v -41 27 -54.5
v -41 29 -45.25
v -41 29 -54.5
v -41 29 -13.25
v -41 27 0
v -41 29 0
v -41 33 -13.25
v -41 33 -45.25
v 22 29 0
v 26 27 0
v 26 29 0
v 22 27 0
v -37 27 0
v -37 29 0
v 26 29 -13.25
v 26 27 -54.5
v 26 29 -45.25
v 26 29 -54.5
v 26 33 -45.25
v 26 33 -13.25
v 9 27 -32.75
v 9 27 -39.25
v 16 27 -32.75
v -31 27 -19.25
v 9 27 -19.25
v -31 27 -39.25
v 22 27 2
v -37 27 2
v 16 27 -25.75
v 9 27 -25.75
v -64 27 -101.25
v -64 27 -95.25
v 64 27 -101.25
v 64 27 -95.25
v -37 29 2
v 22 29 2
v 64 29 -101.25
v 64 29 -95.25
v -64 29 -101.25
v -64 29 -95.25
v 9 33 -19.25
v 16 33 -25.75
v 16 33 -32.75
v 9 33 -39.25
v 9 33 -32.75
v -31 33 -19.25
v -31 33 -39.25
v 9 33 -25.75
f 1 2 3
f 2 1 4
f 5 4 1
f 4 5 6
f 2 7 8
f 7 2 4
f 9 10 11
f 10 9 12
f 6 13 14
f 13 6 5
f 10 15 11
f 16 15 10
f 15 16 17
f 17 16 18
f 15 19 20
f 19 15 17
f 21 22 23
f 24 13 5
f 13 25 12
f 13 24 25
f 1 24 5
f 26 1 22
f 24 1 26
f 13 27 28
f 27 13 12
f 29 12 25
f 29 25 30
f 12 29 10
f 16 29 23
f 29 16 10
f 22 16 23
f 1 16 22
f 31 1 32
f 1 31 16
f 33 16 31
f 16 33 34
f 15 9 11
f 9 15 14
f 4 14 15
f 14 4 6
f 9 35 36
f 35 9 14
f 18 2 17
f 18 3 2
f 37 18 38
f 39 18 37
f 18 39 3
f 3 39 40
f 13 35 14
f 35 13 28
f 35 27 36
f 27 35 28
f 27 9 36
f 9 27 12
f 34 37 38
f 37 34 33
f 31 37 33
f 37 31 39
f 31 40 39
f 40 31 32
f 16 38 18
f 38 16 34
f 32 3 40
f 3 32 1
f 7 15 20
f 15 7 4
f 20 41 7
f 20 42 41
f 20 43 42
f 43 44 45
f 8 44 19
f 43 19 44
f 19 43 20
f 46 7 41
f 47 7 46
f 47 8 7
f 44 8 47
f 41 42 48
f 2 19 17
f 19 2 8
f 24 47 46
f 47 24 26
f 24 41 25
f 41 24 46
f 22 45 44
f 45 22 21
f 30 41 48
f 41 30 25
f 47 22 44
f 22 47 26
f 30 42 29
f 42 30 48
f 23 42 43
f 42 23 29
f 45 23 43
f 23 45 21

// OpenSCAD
/*
  Seed imaging system case with experimental collector

  Starting point:
    A simple rectangular base plate for the vacuum/rocking seed imaging system.
*/

$fn = 48;

// Choose what OpenSCAD shows/exports.
part_to_show = "back"; // "assembly", "plate", "front", "back", "left_side", "right_side", "sides", "collector", "lower_frame", "bottom"

// Base plate dimensions.
plate_w = 210;      // mm
plate_h = 180;      // mm
plate_thick = 2;    // mm
corner_r = 2;       // mm, just enough to remove sharp corners
wall_slot_clearance = 0.3; // mm extra slot size for sliding wall parts into plate

// Cutout matching the outer tray footprint of the moving funnel adapter.
funnel_cutout_w = 124;       // mm, long side plus clearance for rotation
funnel_cutout_h = 87;        // mm, short side plus clearance for rotation
funnel_front_gap = 20;       // mm from front long edge of plate to cutout
funnel_cutout_r = 2;         // mm, slight radius to avoid sharp internal corners
funnel_cutout_y = -plate_h/2 + funnel_front_gap + funnel_cutout_h/2;

// Front wall for the vacuum adapter interface, hanging down from the top plate.
front_wall_offset_from_cutout = 12; // mm from front edge of cutout toward plate front
front_wall_extra_w = 10;            // mm extension beyond each cutout side
front_wall_w = funnel_cutout_w + 2 * front_wall_extra_w;
front_wall_h = 101.25;              // mm, bottom is 72 mm below front circle center
front_wall_thick = 2;               // mm
front_wall_y = funnel_cutout_y - funnel_cutout_h/2 - front_wall_offset_from_cutout - front_wall_thick;
back_wall_offset_from_cutout = 10;  // mm from back edge of cutout toward plate back
back_wall_y = funnel_cutout_y + funnel_cutout_h/2 + back_wall_offset_from_cutout;
side_wall_thick = front_wall_thick;
side_wall_y = front_wall_y;
side_wall_depth = back_wall_y + front_wall_thick - front_wall_y;

// Circular opening in the front wall for the static funnel-system spout.
static_spout_outer_d = 31.5;       // mm, current static male spout OD
front_wall_spout_clearance = 1;    // mm extra diameter clearance
front_wall_spout_cutout_d = static_spout_outer_d + front_wall_spout_clearance;
front_wall_spout_top_drop = 15;    // mm below top surface of plate
front_wall_spout_center_z = plate_thick - front_wall_spout_top_drop - front_wall_spout_cutout_d/2;
front_wall_tab_margin = 10;      // mm material around circular spout tab
front_wall_tab_x = -front_wall_spout_cutout_d/2 - front_wall_tab_margin;
front_wall_tab_w = front_wall_spout_cutout_d + 2 * front_wall_tab_margin;
front_back_wall_bottom_clearance = 10; // mm below circular cutout bottom
front_back_wall_bottom_z = front_wall_spout_center_z - front_wall_spout_cutout_d/2 - front_back_wall_bottom_clearance;
front_back_wall_h = -front_back_wall_bottom_z;

// Rectangular opening in the back wall, aligned with the spout opening height.
back_wall_rect_cutout_w = 40;   // mm, long horizontal edge
back_wall_rect_cutout_h = 20;   // mm, vertical edge
back_wall_rect_cutout_x_shift = -11; // mm, left shift from spout center
back_wall_notch_size = 7;       // mm square notch centered on right edge
back_wall_notch_overlap = 0.5;  // mm overlap to avoid a zero-width seam
back_wall_tab_margin = 10;      // mm material around motor cutout tab
back_wall_cutout_min_x = back_wall_rect_cutout_x_shift - back_wall_rect_cutout_w/2;
back_wall_cutout_max_x = back_wall_rect_cutout_x_shift + back_wall_rect_cutout_w/2 + back_wall_notch_size;
back_wall_tab_x = back_wall_cutout_min_x - back_wall_tab_margin;
back_wall_tab_w = back_wall_cutout_max_x - back_wall_cutout_min_x + 2 * back_wall_tab_margin;
back_wall_servo_pad_thick = 4;    // mm extra thickness behind servo mount area
back_wall_servo_pad_margin = 6;   // mm material around the motor rectangle cutout
// Experimental lower collector dimensions.
total_system_h = 190;              // mm, target total height from top of plate to floor
floor_z = plate_thick - total_system_h;
upper_wall_bottom_z = -front_wall_h;
collector_drop_h = upper_wall_bottom_z - floor_z;
collector_wall = 2;                // mm wall thickness for chute/outlet
collector_outlet_od = 30;          // mm outer diameter for seed packet interface
collector_outlet_id = collector_outlet_od - 2 * collector_wall;
collector_outlet_len = 24;         // mm, angled tube length; shorter leaves room for the funnel slope
collector_neck_overlap = 8;        // mm overlap into throat so the angled neck and funnel connect solidly
collector_outlet_angle = 135;      // degrees; cylinder axis points 45 degrees down toward the front
collector_floor_clearance = 35;    // mm from floor to lowest outside edge of outlet mouth
collector_outlet_end_z = floor_z + collector_floor_clearance + collector_outlet_od/2;
collector_outlet_start_z = collector_outlet_end_z - collector_outlet_len * cos(collector_outlet_angle);
collector_outlet_start_y = front_wall_y + 28;
collector_outlet_end_y = collector_outlet_start_y - collector_outlet_len * sin(collector_outlet_angle);
collector_top_margin = 3;          // mm inset from inside wall span
collector_post = 8;                // mm square lower frame corner posts
collector_base_rail_h = 8;         // mm height of bottom rails
collector_base_rail_thick = 6;     // mm thickness of bottom rails
collector_lip_h = 4;               // mm thick top lip tying collector mouth into lower posts
collector_lip_overlap_up = 1;      // mm overlap into upper walls for preview/alignment before adding slots
bottom_wall_notch_depth = 6;       // mm deep receiver notch for side walls in the bottom piece
side_wall_h = front_wall_h + bottom_wall_notch_depth; // mm side walls extend into bottom notches
side_wall_top_tab_inset = 4;      // mm shorter at each end to make a shoulder stop under the top plate
front_back_wall_top_tab_inset = 4; // mm shorter at each end for front/back top plate shoulder stops
tray_boundary_wall_thick = 6;     // mm, wider than 2 mm front/back walls for future notches
tray_boundary_wall_h = 6;         // mm small raised boundary at front/back tray edges
tray_boundary_wall_x_margin = 4;  // mm extra length beyond matching front/back wall pieces
tray_boundary_wall_side_inset = side_wall_thick/2 + collector_post/2; // mm keeps rails clear of side walls
front_back_diag_frame_w = 8;      // mm width of trapezoid-frame brace bands
front_back_diag_wall_overlap = 1; // mm overlap so brace merges cleanly into front/back wall
front_back_diag_inner_base_inset = 22; // mm larger values make the inner triangle less obtuse
front_back_diag_end_inset = 14;   // mm keeps brace feet shy of side-wall/funnel corners
front_back_diag_tab_w = 12;       // mm width of rectangular feet that seat in tray-wall notches
front_back_diag_tab_h = tray_boundary_wall_h; // mm foot height matching the tray wall height
front_back_diag_notch_clearance = wall_slot_clearance; // mm extra room around brace feet

// Makes a 2D rounded rectangle profile.
module rounded_rect_2d(w, h, r) {
  offset(r = r)
    square([w - 2*r, h - 2*r], center = true);
}

// Makes the main rectangular base plate with lightly rounded corners.
module base_plate() {
  linear_extrude(height = plate_thick)
    rounded_rect_2d(plate_w, plate_h, corner_r);
}

// Cuts the moving funnel adapter tray footprint through the plate. The long
// side of the cutout runs parallel to the long side of the plate.
module funnel_tray_cutout() {
  translate([0, funnel_cutout_y, -0.5])
    linear_extrude(height = plate_thick + 1)
      rounded_rect_2d(funnel_cutout_w, funnel_cutout_h, funnel_cutout_r);
}

// Cuts the round spout opening through the front wall.
module front_wall_spout_cutout() {
  translate([0, front_wall_y + front_wall_thick/2, front_wall_spout_center_z])
    rotate([90, 0, 0])
      cylinder(h = front_wall_thick + 1, d = front_wall_spout_cutout_d, center = true);
}


// Makes a trapezoid-shaped wall extension with a triangular center opening.
// The two lower rectangular feet seat into matching notches in the tray wall.
module front_back_trapezoid_brace_at(wall_x, wall_w, y, y_thick) {
  top_left = wall_x;
  top_right = wall_x + wall_w;
  foot_left_center = -front_wall_w/2 + front_back_diag_end_inset;
  foot_right_center = front_wall_w/2 - front_back_diag_end_inset;
  foot_left_outer = foot_left_center - front_back_diag_tab_w/2;
  foot_left_inner = foot_left_center + front_back_diag_tab_w/2;
  foot_right_inner = foot_right_center - front_back_diag_tab_w/2;
  foot_right_outer = foot_right_center + front_back_diag_tab_w/2;
  z_top = front_back_wall_bottom_z + front_back_diag_wall_overlap;
  z_bottom = upper_wall_bottom_z;
  z_foot_top = upper_wall_bottom_z + front_back_diag_tab_h;

  translate([0, y + y_thick, 0])
    rotate([90, 0, 0])
      linear_extrude(height = y_thick)
        polygon(points = [
          [top_left, z_top],
          [top_right, z_top],
          [foot_right_outer, z_foot_top],
          [foot_right_outer, z_bottom],
          [foot_left_outer, z_bottom],
          [foot_left_outer, z_foot_top]
        ]);
}
// Makes the front vertical wall below the plate.
module front_wall() {
  front_wall_top_tab_x = front_wall_tab_x + front_back_wall_top_tab_inset;
  front_wall_top_tab_w = front_wall_tab_w - 2 * front_back_wall_top_tab_inset;

  difference() {
    union() {
      translate([front_wall_tab_x, front_wall_y, front_back_wall_bottom_z])
        cube([front_wall_tab_w, front_wall_thick, front_back_wall_h], center = false);
      translate([front_wall_top_tab_x, front_wall_y, 0])
        cube([front_wall_top_tab_w, front_wall_thick, plate_thick], center = false);
      front_back_trapezoid_brace_at(front_wall_tab_x, front_wall_tab_w, front_wall_y, front_wall_thick);
    }
    front_wall_spout_cutout();
  }
}

// Cuts the rectangular opening through the back wall.
module back_wall_rect_cutout() {
  union() {
    translate([back_wall_rect_cutout_x_shift - back_wall_rect_cutout_w/2,
               back_wall_y - 0.5,
               front_wall_spout_center_z - back_wall_rect_cutout_h/2])
      cube([back_wall_rect_cutout_w, front_wall_thick + back_wall_servo_pad_thick + 1, back_wall_rect_cutout_h], center = false);

    translate([back_wall_rect_cutout_x_shift + back_wall_rect_cutout_w/2 - back_wall_notch_overlap,
               back_wall_y - 0.5,
               front_wall_spout_center_z - back_wall_notch_size/2])
      cube([back_wall_notch_size + back_wall_notch_overlap, front_wall_thick + back_wall_servo_pad_thick + 1, back_wall_notch_size], center = false);
  }
}


// Adds localized thickness behind the motor cutout for servo mounting screws.
module back_wall_servo_mount_pad() {
  pad_x = back_wall_tab_x;
  pad_w = back_wall_tab_w;
  pad_z = front_wall_spout_center_z - back_wall_rect_cutout_h/2 - back_wall_servo_pad_margin;
  pad_h = back_wall_rect_cutout_h + 2 * back_wall_servo_pad_margin;

  translate([pad_x, back_wall_y + front_wall_thick, pad_z])
    cube([pad_w, back_wall_servo_pad_thick, pad_h], center = false);
}
// Makes the back vertical wall below the plate, mirrored from the front wall.
module back_wall() {
  back_wall_top_tab_x = back_wall_tab_x + front_back_wall_top_tab_inset;
  back_wall_top_tab_w = back_wall_tab_w - 2 * front_back_wall_top_tab_inset;

  difference() {
    union() {
      translate([back_wall_tab_x, back_wall_y, front_back_wall_bottom_z])
        cube([back_wall_tab_w, front_wall_thick, front_back_wall_h], center = false);
      translate([back_wall_top_tab_x, back_wall_y, 0])
        cube([back_wall_top_tab_w, front_wall_thick, plate_thick], center = false);
      front_back_trapezoid_brace_at(back_wall_tab_x, back_wall_tab_w, back_wall_y, front_wall_thick);
      back_wall_servo_mount_pad();
    }
    back_wall_rect_cutout();
  }
}

// Makes side walls that connect the front and back walls while preserving
// the 144 mm interior span between their inside faces.
module side_wall(side) {
  x = side < 0 ? -front_wall_w/2 - side_wall_thick : front_wall_w/2;
  tab_y = side_wall_y + side_wall_top_tab_inset;
  tab_depth = side_wall_depth - 2 * side_wall_top_tab_inset;

  union() {
    translate([x, side_wall_y, -side_wall_h])
      cube([side_wall_thick, side_wall_depth, side_wall_h], center = false);

    translate([x, tab_y, 0])
      cube([side_wall_thick, tab_depth, plate_thick], center = false);
  }
}

module side_walls() {
  side_wall(-1);
  side_wall(1);
}
// Makes a very thin rectangular face used as the open mouth of the collector chute.
module collector_top_patch(w, d, z) {
  translate([-w/2, side_wall_y + collector_top_margin, z])
    cube([w, d, 0.4], center = false);
}

// Makes a very thin circular face used as the lower throat of the collector chute.
module collector_circle_patch(d, y, z) {
  translate([0, y, z])
    cylinder(h = 0.4, d = d, center = true);
}


// Adds a broad lip at the top of the collector so the funnel clearly rests on the lower posts
// and closes the gap to the original side wall pieces.
module collector_top_lip_outer() {
  lip_x = -front_wall_w/2 - side_wall_thick/2 - collector_post/2;
  lip_y = side_wall_y;
  lip_w = front_wall_w + side_wall_thick + collector_post;
  lip_d = side_wall_depth;

  translate([lip_x, lip_y, upper_wall_bottom_z - collector_lip_h])
    cube([lip_w, lip_d, collector_lip_h + collector_lip_overlap_up], center = false);
}

// Keeps the collector lip open so seeds can drop into the funnel.
module collector_top_lip_void() {
  opening_w = front_wall_w - 2 * collector_wall;
  opening_d = side_wall_depth - 2 * collector_wall;

  translate([-opening_w/2,
             side_wall_y + collector_wall,
             upper_wall_bottom_z - collector_lip_h - 0.5])
    cube([opening_w, opening_d, collector_lip_h + 3], center = false);
}
// Outer solid rectangular-to-round collector funnel.
module collector_chute_outer() {
  top_w_outer = front_wall_w - 2 * collector_top_margin;
  top_d_outer = side_wall_depth - 2 * collector_top_margin;

  hull() {
    collector_top_patch(top_w_outer, top_d_outer, upper_wall_bottom_z - 0.4);
    collector_circle_patch(collector_outlet_od + 2 * collector_wall, collector_outlet_start_y, collector_outlet_start_z);
  }
}

// Continuous inner void for the rectangular-to-round collector funnel.
module collector_chute_void() {
  top_w_outer = front_wall_w - 2 * collector_top_margin;
  top_d_outer = side_wall_depth - 2 * collector_top_margin;
  top_w_inner = top_w_outer - 2 * collector_wall;
  top_d_inner = top_d_outer - 2 * collector_wall;

  hull() {
    collector_top_patch(top_w_inner, top_d_inner, upper_wall_bottom_z + 1.5);
    collector_circle_patch(collector_outlet_id, collector_outlet_start_y, collector_outlet_start_z);
  }
}


// Adds material only behind the circular throat to close the rear-side gap.
// The shared inner void is subtracted later, so this reinforces the wall without blocking flow.
module collector_rear_throat_seal_outer() {
  seal_d = collector_outlet_od + 2 * collector_wall;
  seal_h = 8;

  intersection() {
    translate([0, collector_outlet_start_y, collector_outlet_start_z - seal_h/2])
      cylinder(h = seal_h, d = seal_d, center = false);

    translate([-seal_d/2,
               collector_outlet_start_y,
               collector_outlet_start_z - seal_h/2])
      cube([seal_d, seal_d/2 + collector_wall, seal_h], center = false);
  }
}
// Outer solid for the tilted outlet neck that the seed packet can wrap around.
module collector_outlet_neck_outer() {
  translate([0,
             collector_outlet_start_y + collector_neck_overlap * sin(collector_outlet_angle),
             collector_outlet_start_z - collector_neck_overlap * cos(collector_outlet_angle)])
    rotate([collector_outlet_angle, 0, 0])
      cylinder(h = collector_outlet_len + collector_neck_overlap, d = collector_outlet_od, center = false);
}

// Continuous inner void through the tilted outlet neck.
module collector_outlet_neck_void() {
  translate([0,
             collector_outlet_start_y + collector_neck_overlap * sin(collector_outlet_angle),
             collector_outlet_start_z - collector_neck_overlap * cos(collector_outlet_angle)])
    rotate([collector_outlet_angle, 0, 0])
      translate([0, 0, -0.5])
        cylinder(h = collector_outlet_len + collector_neck_overlap + 1, d = collector_outlet_id, center = false);
}


// Adds small front/back boundary walls on the collector tray lip.
// These are wider than the front/back wall thickness so future receiver notches
// can leave material on both sides of the descending wall extensions.
module collector_tray_boundary_walls_outer() {
  edge_x = -front_wall_w/2 - side_wall_thick/2 - collector_post/2 + tray_boundary_wall_side_inset;
  edge_w = front_wall_w + side_wall_thick + collector_post - 2 * tray_boundary_wall_side_inset;
  z0 = upper_wall_bottom_z;

  translate([edge_x,
             front_wall_y + front_wall_thick/2 - tray_boundary_wall_thick/2,
             z0])
    cube([edge_w, tray_boundary_wall_thick, tray_boundary_wall_h], center = false);

  translate([edge_x,
             back_wall_y + front_wall_thick/2 - tray_boundary_wall_thick/2,
             z0])
    cube([edge_w, tray_boundary_wall_thick, tray_boundary_wall_h], center = false);
}
// Makes the internal seed collector as one continuous hollow funnel and angled neck.
module collector_funnel() {
  difference() {
    union() {
      collector_top_lip_outer();
      collector_tray_boundary_walls_outer();
      collector_chute_outer();
      collector_rear_throat_seal_outer();
      collector_outlet_neck_outer();
    }

    union() {
      collector_chute_void();
      collector_outlet_neck_void();
    }
  }
}

// Adds a light lower frame so the final assembly reaches 190 mm without
// relying on the funnel shell as the only support.
module lower_frame() {
  x_left = -front_wall_w/2 - side_wall_thick/2 - collector_post/2;
  x_right = front_wall_w/2 + side_wall_thick/2 - collector_post/2;
  y_front = side_wall_y;
  y_back = side_wall_y + side_wall_depth - collector_post;

  union() {
    for (x = [x_left, x_right])
      for (y = [y_front, y_back])
        translate([x, y, floor_z])
          cube([collector_post, collector_post, collector_drop_h], center = false);

    translate([x_left, y_back, floor_z])
      cube([x_right + collector_post - x_left, collector_base_rail_thick, collector_base_rail_h], center = false);

    for (x = [x_left, x_right])
      translate([x, y_front, floor_z])
        cube([collector_post, side_wall_depth, collector_base_rail_h], center = false);
  }
}



// Cuts receiver notches into the top of the bottom module for the two side walls.
module bottom_side_wall_notches() {
  c = wall_slot_clearance;
  z0 = upper_wall_bottom_z - bottom_wall_notch_depth;
  h = bottom_wall_notch_depth + collector_lip_overlap_up + 1;

  translate([-front_wall_w/2 - side_wall_thick - c/2,
             side_wall_y - c/2,
             z0])
    cube([side_wall_thick + c, side_wall_depth + c, h], center = false);

  translate([front_wall_w/2 - c/2,
             side_wall_y - c/2,
             z0])
    cube([side_wall_thick + c, side_wall_depth + c, h], center = false);
}

// Cuts one long receiver groove in each tray rail for the front/back brace base.
module front_back_brace_foot_notches() {
  c = front_back_diag_notch_clearance;
  groove_w = front_wall_w - 2 * front_back_diag_end_inset + front_back_diag_tab_w + c;
  groove_y = front_wall_thick + c;
  groove_h = front_back_diag_tab_h + c;
  wall_ys = [front_wall_y, back_wall_y];

  for (y = wall_ys)
    translate([-groove_w/2,
               y - c/2,
               upper_wall_bottom_z - c/2])
      cube([groove_w, groove_y, groove_h], center = false);
}
// Makes the new lower modular piece: collector funnel plus its support frame.
// The original side walls remain separate modules so we can add slide-fit features next.
module bottom_piece() {
  difference() {
    union() {
      collector_funnel();
      lower_frame();
    }
    bottom_side_wall_notches();
    front_back_brace_foot_notches();
  }
}
// Cuts slots through the top plate matching the top footprint of each wall/tab.
module wall_slot_cutouts() {
  c = wall_slot_clearance;

  translate([front_wall_tab_x + front_back_wall_top_tab_inset - c/2, front_wall_y - c/2, -0.5])
    cube([front_wall_tab_w - 2 * front_back_wall_top_tab_inset + c, front_wall_thick + c, plate_thick + 1], center = false);

  translate([back_wall_tab_x + front_back_wall_top_tab_inset - c/2, back_wall_y - c/2, -0.5])
    cube([back_wall_tab_w - 2 * front_back_wall_top_tab_inset + c, front_wall_thick + c, plate_thick + 1], center = false);

  translate([-front_wall_w/2 - side_wall_thick - c/2,
             side_wall_y + side_wall_top_tab_inset - c/2,
             -0.5])
    cube([side_wall_thick + c,
          side_wall_depth - 2 * side_wall_top_tab_inset + c,
          plate_thick + 1], center = false);

  translate([front_wall_w/2 - c/2,
             side_wall_y + side_wall_top_tab_inset - c/2,
             -0.5])
    cube([side_wall_thick + c,
          side_wall_depth - 2 * side_wall_top_tab_inset + c,
          plate_thick + 1], center = false);
}
module case_plate() {
  difference() {
    base_plate();
    funnel_tray_cutout();
    wall_slot_cutouts();
  }
}

module case_assembly() {
  union() {
    case_plate();
    front_wall();
    back_wall();
    side_walls();
    bottom_piece();
  }
}

if (part_to_show == "plate") {
  case_plate();
} else if (part_to_show == "front") {
  front_wall();
} else if (part_to_show == "back") {
  back_wall();
} else if (part_to_show == "left_side") {
  side_wall(-1);
} else if (part_to_show == "right_side") {
  side_wall(1);
} else if (part_to_show == "sides") {
  side_walls();
} else if (part_to_show == "collector") {
  collector_funnel();
} else if (part_to_show == "lower_frame") {
  lower_frame();
} else if (part_to_show == "bottom") {
  bottom_piece();
} else {
  case_assembly();
}
